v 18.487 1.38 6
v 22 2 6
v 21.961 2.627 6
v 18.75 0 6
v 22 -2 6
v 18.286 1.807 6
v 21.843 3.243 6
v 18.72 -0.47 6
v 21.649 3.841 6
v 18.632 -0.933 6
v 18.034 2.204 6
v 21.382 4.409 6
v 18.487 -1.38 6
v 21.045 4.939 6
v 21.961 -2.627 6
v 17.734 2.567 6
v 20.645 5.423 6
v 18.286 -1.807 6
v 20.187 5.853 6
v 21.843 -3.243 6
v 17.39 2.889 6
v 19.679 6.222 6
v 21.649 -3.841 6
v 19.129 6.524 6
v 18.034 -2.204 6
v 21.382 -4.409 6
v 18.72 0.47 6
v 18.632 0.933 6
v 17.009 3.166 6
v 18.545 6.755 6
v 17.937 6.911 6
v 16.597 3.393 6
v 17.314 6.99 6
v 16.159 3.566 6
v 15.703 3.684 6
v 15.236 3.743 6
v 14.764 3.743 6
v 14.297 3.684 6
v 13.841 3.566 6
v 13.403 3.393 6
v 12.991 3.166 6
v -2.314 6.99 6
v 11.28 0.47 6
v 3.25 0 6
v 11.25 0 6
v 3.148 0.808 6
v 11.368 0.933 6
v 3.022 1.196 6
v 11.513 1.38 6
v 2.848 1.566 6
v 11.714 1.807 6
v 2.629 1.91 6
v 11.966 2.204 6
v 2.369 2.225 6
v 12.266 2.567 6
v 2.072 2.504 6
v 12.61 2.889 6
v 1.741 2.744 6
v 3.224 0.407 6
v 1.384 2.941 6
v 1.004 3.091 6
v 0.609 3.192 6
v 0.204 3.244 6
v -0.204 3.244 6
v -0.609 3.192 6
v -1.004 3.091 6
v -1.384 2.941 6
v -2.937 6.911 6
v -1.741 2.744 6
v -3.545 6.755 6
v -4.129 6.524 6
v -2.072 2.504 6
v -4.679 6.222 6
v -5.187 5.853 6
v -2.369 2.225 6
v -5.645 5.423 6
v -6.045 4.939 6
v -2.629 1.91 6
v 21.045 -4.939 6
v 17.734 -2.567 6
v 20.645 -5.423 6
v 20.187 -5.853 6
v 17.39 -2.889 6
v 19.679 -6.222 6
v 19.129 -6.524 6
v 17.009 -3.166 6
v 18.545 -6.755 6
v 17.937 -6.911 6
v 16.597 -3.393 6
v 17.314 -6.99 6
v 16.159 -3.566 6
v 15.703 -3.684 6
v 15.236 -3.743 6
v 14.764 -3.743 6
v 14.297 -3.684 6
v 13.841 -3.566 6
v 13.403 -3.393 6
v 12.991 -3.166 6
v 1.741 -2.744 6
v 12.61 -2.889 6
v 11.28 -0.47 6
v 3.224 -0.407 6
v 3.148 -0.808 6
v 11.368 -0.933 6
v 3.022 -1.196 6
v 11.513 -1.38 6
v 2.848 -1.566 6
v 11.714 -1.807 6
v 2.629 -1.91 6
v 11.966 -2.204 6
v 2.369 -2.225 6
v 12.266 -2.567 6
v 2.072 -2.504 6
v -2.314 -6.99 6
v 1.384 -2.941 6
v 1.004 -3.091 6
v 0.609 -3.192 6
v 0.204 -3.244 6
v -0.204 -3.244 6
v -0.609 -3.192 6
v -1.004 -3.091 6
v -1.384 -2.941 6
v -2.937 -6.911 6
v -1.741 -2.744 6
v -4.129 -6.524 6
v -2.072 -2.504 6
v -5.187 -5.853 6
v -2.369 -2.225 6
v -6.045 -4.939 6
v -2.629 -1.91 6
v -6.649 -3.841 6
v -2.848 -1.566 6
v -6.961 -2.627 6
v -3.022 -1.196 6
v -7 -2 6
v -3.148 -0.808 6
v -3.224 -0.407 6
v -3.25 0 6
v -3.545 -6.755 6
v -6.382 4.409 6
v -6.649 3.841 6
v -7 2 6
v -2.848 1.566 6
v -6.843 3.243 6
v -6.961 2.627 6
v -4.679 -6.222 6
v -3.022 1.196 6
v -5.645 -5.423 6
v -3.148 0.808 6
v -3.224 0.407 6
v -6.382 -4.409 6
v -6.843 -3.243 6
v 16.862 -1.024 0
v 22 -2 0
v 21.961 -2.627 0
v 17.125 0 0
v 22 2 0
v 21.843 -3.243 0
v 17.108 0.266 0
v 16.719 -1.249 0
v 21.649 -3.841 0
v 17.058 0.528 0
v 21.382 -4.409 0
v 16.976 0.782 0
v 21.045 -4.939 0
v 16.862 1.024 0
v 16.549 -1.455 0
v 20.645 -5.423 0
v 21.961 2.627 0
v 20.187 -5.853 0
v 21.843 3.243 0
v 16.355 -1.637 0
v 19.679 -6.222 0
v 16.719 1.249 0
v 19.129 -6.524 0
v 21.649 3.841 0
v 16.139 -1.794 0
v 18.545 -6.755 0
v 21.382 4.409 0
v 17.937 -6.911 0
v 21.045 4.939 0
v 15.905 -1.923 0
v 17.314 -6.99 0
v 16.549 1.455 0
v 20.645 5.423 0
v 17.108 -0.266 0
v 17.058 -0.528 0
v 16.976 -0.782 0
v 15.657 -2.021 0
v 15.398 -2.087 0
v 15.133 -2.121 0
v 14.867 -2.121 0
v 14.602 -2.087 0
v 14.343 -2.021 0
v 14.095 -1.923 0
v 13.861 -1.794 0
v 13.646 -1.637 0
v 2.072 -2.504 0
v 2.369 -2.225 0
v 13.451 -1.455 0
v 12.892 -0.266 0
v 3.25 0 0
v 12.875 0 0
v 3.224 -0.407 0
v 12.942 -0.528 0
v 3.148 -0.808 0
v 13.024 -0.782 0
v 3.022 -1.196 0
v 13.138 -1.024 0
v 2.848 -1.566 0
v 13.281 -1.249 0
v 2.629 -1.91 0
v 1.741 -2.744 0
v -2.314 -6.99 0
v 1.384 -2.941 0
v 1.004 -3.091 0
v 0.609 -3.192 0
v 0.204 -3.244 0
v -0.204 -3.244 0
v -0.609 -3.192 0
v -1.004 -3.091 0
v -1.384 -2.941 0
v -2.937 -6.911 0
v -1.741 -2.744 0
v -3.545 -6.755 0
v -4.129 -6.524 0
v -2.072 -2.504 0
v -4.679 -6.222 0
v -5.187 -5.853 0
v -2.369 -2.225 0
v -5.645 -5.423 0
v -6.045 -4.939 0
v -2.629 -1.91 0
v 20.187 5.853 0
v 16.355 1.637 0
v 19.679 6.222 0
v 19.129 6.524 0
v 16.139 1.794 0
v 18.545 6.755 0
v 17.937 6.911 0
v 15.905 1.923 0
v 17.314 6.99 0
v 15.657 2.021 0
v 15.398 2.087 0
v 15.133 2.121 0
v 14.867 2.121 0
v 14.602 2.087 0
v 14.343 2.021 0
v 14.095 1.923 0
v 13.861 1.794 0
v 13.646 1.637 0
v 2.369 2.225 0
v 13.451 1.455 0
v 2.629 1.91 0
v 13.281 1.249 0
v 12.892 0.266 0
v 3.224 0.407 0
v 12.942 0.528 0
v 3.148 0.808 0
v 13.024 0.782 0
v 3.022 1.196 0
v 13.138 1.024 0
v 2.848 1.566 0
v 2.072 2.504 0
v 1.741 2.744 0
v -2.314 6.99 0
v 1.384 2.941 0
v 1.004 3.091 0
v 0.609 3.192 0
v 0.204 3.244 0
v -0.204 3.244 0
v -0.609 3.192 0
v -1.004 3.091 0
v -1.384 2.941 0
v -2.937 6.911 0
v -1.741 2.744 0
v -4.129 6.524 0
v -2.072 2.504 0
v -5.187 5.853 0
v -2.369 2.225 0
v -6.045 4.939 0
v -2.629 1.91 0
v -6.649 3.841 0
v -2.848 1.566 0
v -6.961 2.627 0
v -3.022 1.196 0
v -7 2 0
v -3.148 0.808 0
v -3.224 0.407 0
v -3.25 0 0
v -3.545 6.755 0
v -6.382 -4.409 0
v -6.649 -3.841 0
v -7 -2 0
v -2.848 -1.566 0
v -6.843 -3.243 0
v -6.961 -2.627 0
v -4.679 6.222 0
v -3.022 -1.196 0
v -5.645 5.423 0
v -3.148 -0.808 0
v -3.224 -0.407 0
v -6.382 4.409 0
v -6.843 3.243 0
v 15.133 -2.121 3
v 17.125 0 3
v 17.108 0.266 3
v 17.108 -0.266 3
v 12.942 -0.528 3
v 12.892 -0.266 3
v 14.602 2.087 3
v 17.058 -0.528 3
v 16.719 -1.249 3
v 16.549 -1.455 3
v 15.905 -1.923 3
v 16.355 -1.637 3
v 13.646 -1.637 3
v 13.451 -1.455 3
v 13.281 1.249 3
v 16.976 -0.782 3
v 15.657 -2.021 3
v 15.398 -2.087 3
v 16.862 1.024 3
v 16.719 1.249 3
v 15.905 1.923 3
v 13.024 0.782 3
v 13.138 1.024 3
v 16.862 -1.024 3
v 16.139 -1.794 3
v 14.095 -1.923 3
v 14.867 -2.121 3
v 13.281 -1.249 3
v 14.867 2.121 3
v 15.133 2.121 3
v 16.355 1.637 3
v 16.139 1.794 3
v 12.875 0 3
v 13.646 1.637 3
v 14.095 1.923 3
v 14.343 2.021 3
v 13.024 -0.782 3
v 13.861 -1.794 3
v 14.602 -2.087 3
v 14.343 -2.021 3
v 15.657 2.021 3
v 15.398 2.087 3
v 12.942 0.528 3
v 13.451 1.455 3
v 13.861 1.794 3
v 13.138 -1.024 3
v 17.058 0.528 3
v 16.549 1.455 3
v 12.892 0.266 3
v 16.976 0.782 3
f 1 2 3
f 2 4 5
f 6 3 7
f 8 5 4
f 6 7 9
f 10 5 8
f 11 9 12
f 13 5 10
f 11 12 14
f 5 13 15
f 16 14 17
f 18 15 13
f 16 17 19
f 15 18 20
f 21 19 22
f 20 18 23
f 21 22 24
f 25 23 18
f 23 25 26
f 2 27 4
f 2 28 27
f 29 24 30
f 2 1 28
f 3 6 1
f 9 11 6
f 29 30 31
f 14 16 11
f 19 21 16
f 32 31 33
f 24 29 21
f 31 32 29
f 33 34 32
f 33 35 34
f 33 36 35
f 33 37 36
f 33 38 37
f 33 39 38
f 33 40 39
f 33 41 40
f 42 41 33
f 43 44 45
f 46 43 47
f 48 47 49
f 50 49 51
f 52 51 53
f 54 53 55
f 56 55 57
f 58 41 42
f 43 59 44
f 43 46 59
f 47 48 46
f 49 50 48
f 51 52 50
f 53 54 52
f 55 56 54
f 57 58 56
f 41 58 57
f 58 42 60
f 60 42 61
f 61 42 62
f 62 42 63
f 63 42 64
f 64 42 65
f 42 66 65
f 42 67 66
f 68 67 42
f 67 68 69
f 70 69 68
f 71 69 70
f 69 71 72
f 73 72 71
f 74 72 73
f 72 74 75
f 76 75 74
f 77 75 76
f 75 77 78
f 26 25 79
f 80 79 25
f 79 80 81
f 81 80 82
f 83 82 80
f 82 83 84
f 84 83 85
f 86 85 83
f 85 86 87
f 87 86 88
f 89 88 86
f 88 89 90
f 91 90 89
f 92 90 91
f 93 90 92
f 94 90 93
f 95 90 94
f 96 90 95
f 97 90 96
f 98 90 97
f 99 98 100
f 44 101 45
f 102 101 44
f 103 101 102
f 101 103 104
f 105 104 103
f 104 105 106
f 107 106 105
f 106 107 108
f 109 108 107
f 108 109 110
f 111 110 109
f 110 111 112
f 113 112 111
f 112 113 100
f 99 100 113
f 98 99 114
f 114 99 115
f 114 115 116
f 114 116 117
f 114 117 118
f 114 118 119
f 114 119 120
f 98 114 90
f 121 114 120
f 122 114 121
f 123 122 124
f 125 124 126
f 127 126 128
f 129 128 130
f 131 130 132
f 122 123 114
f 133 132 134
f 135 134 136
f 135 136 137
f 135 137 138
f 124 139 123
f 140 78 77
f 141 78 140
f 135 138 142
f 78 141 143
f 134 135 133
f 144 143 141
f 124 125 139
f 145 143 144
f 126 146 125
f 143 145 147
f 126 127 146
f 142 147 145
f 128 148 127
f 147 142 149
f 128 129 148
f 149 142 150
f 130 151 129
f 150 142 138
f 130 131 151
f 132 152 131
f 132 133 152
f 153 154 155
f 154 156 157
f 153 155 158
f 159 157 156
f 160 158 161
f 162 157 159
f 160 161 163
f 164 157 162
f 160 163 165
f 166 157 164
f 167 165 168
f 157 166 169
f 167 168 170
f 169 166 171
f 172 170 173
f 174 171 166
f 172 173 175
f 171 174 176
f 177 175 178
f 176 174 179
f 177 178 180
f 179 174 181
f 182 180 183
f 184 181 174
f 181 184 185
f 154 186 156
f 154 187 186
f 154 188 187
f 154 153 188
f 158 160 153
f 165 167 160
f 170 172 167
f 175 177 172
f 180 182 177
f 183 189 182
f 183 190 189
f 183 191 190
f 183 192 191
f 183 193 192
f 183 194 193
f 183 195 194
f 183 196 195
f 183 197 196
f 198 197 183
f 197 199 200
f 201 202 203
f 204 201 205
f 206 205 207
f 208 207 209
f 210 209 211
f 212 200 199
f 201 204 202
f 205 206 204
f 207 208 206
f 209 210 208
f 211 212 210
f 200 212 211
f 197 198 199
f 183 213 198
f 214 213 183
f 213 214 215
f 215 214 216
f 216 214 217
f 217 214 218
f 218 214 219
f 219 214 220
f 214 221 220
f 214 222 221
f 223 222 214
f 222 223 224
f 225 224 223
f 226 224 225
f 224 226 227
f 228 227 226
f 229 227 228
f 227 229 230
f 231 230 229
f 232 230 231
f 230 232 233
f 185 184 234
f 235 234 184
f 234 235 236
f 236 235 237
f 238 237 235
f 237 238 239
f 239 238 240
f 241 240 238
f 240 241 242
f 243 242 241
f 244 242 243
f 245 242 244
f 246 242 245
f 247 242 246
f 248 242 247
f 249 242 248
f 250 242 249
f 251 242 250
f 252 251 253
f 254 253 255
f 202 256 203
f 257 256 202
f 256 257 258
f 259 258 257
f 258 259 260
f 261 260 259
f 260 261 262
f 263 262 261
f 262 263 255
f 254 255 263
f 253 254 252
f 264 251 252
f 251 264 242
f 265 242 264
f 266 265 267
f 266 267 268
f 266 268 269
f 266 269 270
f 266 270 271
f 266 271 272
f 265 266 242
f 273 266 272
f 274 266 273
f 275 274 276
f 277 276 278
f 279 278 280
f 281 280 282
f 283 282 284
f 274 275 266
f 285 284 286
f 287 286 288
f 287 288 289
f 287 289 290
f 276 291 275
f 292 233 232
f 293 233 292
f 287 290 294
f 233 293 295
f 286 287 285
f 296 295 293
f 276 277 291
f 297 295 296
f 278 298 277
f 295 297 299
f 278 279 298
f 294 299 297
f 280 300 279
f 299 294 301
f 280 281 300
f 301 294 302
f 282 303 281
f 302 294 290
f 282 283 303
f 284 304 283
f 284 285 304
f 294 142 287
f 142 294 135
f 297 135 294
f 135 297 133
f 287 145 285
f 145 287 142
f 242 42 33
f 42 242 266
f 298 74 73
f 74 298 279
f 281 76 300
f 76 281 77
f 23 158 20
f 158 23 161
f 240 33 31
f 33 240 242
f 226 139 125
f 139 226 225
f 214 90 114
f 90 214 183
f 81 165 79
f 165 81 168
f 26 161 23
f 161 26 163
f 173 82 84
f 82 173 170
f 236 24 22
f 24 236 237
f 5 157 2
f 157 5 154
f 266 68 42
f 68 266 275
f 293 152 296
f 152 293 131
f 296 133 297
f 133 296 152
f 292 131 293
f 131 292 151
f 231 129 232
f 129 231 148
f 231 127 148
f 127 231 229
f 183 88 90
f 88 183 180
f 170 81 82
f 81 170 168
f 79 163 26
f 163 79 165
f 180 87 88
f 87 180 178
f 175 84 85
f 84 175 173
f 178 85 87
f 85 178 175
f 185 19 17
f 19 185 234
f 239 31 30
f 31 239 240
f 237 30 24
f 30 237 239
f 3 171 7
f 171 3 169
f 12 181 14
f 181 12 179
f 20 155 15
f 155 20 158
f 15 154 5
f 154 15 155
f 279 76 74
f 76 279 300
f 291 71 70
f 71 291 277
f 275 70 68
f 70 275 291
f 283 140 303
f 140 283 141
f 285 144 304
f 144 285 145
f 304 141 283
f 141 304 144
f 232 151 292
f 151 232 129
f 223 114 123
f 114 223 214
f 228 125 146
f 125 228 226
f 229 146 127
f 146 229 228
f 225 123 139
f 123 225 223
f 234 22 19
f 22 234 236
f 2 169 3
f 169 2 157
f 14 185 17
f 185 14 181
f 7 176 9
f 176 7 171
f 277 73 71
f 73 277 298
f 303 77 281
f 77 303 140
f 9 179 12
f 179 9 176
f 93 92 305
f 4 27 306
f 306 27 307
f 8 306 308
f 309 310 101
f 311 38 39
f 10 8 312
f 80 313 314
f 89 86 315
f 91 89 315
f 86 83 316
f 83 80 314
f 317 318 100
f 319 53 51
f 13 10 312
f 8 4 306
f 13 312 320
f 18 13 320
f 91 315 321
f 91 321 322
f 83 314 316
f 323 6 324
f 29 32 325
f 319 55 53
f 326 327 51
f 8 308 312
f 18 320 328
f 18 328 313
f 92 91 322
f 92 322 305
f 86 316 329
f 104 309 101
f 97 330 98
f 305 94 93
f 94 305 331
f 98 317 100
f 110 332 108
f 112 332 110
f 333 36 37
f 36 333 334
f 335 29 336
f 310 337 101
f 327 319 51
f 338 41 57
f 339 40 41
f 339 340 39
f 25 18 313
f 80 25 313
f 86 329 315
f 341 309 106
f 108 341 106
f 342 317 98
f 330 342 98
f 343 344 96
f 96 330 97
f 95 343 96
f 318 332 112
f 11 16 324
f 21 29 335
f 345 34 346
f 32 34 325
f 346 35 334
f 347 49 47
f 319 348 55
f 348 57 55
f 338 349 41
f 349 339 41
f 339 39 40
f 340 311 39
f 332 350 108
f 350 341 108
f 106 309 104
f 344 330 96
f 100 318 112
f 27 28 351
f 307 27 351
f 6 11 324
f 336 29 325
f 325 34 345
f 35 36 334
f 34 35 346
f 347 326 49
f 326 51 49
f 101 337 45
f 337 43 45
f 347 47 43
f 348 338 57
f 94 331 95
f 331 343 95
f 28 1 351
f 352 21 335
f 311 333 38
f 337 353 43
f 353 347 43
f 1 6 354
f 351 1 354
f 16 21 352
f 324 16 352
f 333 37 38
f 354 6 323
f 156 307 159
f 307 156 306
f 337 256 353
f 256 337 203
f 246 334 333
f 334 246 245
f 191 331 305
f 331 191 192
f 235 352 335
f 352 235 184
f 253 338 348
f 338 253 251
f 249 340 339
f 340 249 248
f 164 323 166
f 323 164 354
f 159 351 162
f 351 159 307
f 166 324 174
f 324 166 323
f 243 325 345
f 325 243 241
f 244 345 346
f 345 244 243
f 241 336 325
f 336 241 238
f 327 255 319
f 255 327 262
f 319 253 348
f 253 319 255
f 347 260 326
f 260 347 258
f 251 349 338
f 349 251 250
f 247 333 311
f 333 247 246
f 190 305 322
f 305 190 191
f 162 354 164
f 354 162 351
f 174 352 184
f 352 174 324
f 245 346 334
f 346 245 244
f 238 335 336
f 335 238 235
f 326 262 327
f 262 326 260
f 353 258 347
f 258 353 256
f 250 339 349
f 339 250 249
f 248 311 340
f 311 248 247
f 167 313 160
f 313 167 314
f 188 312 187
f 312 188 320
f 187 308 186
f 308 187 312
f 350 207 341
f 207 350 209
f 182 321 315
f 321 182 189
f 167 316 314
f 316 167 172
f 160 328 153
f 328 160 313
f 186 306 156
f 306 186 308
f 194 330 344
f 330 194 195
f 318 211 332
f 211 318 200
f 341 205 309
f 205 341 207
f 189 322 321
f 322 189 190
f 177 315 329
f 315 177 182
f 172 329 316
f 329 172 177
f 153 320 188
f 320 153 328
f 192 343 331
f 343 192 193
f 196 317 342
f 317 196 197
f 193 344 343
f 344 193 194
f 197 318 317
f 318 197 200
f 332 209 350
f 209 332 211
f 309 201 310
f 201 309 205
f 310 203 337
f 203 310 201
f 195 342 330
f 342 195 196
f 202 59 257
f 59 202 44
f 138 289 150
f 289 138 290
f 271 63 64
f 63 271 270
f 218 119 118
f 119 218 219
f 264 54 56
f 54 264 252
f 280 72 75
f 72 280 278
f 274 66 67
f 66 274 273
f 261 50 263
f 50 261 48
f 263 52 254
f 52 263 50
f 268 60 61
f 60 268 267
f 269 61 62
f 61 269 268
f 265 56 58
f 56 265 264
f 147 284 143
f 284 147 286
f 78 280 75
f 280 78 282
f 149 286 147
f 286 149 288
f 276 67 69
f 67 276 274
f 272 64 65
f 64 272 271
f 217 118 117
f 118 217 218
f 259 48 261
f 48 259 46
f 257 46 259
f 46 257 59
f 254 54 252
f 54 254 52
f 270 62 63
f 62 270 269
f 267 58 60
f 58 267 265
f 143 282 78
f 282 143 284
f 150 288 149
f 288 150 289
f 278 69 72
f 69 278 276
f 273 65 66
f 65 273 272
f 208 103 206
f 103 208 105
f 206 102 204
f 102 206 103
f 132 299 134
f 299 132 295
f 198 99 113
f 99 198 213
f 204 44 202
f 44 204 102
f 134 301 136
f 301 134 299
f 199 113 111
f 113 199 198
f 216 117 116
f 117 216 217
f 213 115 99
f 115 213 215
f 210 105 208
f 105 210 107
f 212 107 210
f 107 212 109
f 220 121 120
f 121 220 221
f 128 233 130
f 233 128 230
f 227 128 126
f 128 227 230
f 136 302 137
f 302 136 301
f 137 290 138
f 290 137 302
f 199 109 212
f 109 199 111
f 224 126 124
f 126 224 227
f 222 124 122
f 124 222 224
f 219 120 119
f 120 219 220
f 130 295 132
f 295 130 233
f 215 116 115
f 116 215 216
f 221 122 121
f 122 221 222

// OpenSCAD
$fn = 50;


difference() {
	union() {
		cylinder(h = 6, r = 7.0000000000);
		translate(v = [7.5000000000, 0.0000000000, 0]) {
			hull() {
				translate(v = [-9.5000000000, 2.0000000000, 0]) {
					cylinder(h = 6, r = 5);
				}
				translate(v = [9.5000000000, 2.0000000000, 0]) {
					cylinder(h = 6, r = 5);
				}
				translate(v = [-9.5000000000, -2.0000000000, 0]) {
					cylinder(h = 6, r = 5);
				}
				translate(v = [9.5000000000, -2.0000000000, 0]) {
					cylinder(h = 6, r = 5);
				}
			}
		}
		translate(v = [7.5000000000, 0.0000000000, 0]) {
			hull() {
				translate(v = [-9.5000000000, 2.0000000000, 0]) {
					cylinder(h = 6, r = 5);
				}
				translate(v = [9.5000000000, 2.0000000000, 0]) {
					cylinder(h = 6, r = 5);
				}
				translate(v = [-9.5000000000, -2.0000000000, 0]) {
					cylinder(h = 6, r = 5);
				}
				translate(v = [9.5000000000, -2.0000000000, 0]) {
					cylinder(h = 6, r = 5);
				}
			}
		}
	}
	union() {
		translate(v = [15.0000000000, 0.0000000000, 6]) {
			rotate(a = [0, 0, 0]) {
				difference() {
					union() {
						#translate(v = [0, 0, -6.0000000000]) {
							cylinder(h = 6, r = 2.0000000000);
						}
						#translate(v = [0, 0, -3]) {
							cylinder(h = 3, r1 = 2.1250000000, r2 = 3.7500000000);
						}
						#translate(v = [0, 0, -6.0000000000]) {
							cylinder(h = 6, r = 2.1250000000);
						}
						#translate(v = [0, 0, -6.0000000000]) {
							cylinder(h = 6, r = 2.0000000000);
						}
					}
					union();
				}
			}
		}
		translate(v = [15.0000000000, 0.0000000000, 6]) {
			rotate(a = [0, 0, 0]) {
				difference() {
					union() {
						#translate(v = [0, 0, -6.0000000000]) {
							cylinder(h = 6, r = 2.0000000000);
						}
						#translate(v = [0, 0, -3]) {
							cylinder(h = 3, r1 = 2.1250000000, r2 = 3.7500000000);
						}
						#translate(v = [0, 0, -6.0000000000]) {
							cylinder(h = 6, r = 2.1250000000);
						}
						#translate(v = [0, 0, -6.0000000000]) {
							cylinder(h = 6, r = 2.0000000000);
						}
					}
					union();
				}
			}
		}
		translate(v = [0, 0, -100]) {
			cylinder(h = 200, r = 3.2500000000);
		}
		translate(v = [0, 0, -100]) {
			cylinder(h = 200, r = 1.8000000000);
		}
	}
}
